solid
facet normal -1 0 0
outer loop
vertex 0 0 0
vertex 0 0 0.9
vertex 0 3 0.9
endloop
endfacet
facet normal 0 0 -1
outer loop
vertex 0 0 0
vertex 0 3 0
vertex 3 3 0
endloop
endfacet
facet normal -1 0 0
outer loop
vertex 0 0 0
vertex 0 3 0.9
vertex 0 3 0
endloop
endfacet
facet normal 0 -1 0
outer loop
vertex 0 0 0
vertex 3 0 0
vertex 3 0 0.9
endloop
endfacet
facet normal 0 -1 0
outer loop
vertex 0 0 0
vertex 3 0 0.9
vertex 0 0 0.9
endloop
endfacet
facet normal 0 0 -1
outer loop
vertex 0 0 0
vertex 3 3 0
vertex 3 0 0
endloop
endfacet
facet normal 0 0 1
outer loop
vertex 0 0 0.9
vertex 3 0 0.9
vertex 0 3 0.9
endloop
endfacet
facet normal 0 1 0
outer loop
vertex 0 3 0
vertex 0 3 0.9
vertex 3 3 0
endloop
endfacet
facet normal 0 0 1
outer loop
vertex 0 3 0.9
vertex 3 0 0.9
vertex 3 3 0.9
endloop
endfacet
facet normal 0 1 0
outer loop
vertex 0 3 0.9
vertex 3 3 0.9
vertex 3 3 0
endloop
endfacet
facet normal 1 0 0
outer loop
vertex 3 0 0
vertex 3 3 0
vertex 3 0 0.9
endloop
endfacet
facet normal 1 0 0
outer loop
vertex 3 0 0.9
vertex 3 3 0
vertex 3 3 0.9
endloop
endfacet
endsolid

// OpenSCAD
/* Warning, this is a very basic generator with a lot of approximation 
input data : [VDFN, JPA, 3x3x0.9mm, 10, , A, C04-01019A]
generated by com.zoubworld.electronics.cad.model3d.Basic
Date : Sun Feb 15 10:50:49 CET 2026
*/

//body
color("black")
translate([0,0,0])
cube([3.0,3.0,0.9], center=false);
